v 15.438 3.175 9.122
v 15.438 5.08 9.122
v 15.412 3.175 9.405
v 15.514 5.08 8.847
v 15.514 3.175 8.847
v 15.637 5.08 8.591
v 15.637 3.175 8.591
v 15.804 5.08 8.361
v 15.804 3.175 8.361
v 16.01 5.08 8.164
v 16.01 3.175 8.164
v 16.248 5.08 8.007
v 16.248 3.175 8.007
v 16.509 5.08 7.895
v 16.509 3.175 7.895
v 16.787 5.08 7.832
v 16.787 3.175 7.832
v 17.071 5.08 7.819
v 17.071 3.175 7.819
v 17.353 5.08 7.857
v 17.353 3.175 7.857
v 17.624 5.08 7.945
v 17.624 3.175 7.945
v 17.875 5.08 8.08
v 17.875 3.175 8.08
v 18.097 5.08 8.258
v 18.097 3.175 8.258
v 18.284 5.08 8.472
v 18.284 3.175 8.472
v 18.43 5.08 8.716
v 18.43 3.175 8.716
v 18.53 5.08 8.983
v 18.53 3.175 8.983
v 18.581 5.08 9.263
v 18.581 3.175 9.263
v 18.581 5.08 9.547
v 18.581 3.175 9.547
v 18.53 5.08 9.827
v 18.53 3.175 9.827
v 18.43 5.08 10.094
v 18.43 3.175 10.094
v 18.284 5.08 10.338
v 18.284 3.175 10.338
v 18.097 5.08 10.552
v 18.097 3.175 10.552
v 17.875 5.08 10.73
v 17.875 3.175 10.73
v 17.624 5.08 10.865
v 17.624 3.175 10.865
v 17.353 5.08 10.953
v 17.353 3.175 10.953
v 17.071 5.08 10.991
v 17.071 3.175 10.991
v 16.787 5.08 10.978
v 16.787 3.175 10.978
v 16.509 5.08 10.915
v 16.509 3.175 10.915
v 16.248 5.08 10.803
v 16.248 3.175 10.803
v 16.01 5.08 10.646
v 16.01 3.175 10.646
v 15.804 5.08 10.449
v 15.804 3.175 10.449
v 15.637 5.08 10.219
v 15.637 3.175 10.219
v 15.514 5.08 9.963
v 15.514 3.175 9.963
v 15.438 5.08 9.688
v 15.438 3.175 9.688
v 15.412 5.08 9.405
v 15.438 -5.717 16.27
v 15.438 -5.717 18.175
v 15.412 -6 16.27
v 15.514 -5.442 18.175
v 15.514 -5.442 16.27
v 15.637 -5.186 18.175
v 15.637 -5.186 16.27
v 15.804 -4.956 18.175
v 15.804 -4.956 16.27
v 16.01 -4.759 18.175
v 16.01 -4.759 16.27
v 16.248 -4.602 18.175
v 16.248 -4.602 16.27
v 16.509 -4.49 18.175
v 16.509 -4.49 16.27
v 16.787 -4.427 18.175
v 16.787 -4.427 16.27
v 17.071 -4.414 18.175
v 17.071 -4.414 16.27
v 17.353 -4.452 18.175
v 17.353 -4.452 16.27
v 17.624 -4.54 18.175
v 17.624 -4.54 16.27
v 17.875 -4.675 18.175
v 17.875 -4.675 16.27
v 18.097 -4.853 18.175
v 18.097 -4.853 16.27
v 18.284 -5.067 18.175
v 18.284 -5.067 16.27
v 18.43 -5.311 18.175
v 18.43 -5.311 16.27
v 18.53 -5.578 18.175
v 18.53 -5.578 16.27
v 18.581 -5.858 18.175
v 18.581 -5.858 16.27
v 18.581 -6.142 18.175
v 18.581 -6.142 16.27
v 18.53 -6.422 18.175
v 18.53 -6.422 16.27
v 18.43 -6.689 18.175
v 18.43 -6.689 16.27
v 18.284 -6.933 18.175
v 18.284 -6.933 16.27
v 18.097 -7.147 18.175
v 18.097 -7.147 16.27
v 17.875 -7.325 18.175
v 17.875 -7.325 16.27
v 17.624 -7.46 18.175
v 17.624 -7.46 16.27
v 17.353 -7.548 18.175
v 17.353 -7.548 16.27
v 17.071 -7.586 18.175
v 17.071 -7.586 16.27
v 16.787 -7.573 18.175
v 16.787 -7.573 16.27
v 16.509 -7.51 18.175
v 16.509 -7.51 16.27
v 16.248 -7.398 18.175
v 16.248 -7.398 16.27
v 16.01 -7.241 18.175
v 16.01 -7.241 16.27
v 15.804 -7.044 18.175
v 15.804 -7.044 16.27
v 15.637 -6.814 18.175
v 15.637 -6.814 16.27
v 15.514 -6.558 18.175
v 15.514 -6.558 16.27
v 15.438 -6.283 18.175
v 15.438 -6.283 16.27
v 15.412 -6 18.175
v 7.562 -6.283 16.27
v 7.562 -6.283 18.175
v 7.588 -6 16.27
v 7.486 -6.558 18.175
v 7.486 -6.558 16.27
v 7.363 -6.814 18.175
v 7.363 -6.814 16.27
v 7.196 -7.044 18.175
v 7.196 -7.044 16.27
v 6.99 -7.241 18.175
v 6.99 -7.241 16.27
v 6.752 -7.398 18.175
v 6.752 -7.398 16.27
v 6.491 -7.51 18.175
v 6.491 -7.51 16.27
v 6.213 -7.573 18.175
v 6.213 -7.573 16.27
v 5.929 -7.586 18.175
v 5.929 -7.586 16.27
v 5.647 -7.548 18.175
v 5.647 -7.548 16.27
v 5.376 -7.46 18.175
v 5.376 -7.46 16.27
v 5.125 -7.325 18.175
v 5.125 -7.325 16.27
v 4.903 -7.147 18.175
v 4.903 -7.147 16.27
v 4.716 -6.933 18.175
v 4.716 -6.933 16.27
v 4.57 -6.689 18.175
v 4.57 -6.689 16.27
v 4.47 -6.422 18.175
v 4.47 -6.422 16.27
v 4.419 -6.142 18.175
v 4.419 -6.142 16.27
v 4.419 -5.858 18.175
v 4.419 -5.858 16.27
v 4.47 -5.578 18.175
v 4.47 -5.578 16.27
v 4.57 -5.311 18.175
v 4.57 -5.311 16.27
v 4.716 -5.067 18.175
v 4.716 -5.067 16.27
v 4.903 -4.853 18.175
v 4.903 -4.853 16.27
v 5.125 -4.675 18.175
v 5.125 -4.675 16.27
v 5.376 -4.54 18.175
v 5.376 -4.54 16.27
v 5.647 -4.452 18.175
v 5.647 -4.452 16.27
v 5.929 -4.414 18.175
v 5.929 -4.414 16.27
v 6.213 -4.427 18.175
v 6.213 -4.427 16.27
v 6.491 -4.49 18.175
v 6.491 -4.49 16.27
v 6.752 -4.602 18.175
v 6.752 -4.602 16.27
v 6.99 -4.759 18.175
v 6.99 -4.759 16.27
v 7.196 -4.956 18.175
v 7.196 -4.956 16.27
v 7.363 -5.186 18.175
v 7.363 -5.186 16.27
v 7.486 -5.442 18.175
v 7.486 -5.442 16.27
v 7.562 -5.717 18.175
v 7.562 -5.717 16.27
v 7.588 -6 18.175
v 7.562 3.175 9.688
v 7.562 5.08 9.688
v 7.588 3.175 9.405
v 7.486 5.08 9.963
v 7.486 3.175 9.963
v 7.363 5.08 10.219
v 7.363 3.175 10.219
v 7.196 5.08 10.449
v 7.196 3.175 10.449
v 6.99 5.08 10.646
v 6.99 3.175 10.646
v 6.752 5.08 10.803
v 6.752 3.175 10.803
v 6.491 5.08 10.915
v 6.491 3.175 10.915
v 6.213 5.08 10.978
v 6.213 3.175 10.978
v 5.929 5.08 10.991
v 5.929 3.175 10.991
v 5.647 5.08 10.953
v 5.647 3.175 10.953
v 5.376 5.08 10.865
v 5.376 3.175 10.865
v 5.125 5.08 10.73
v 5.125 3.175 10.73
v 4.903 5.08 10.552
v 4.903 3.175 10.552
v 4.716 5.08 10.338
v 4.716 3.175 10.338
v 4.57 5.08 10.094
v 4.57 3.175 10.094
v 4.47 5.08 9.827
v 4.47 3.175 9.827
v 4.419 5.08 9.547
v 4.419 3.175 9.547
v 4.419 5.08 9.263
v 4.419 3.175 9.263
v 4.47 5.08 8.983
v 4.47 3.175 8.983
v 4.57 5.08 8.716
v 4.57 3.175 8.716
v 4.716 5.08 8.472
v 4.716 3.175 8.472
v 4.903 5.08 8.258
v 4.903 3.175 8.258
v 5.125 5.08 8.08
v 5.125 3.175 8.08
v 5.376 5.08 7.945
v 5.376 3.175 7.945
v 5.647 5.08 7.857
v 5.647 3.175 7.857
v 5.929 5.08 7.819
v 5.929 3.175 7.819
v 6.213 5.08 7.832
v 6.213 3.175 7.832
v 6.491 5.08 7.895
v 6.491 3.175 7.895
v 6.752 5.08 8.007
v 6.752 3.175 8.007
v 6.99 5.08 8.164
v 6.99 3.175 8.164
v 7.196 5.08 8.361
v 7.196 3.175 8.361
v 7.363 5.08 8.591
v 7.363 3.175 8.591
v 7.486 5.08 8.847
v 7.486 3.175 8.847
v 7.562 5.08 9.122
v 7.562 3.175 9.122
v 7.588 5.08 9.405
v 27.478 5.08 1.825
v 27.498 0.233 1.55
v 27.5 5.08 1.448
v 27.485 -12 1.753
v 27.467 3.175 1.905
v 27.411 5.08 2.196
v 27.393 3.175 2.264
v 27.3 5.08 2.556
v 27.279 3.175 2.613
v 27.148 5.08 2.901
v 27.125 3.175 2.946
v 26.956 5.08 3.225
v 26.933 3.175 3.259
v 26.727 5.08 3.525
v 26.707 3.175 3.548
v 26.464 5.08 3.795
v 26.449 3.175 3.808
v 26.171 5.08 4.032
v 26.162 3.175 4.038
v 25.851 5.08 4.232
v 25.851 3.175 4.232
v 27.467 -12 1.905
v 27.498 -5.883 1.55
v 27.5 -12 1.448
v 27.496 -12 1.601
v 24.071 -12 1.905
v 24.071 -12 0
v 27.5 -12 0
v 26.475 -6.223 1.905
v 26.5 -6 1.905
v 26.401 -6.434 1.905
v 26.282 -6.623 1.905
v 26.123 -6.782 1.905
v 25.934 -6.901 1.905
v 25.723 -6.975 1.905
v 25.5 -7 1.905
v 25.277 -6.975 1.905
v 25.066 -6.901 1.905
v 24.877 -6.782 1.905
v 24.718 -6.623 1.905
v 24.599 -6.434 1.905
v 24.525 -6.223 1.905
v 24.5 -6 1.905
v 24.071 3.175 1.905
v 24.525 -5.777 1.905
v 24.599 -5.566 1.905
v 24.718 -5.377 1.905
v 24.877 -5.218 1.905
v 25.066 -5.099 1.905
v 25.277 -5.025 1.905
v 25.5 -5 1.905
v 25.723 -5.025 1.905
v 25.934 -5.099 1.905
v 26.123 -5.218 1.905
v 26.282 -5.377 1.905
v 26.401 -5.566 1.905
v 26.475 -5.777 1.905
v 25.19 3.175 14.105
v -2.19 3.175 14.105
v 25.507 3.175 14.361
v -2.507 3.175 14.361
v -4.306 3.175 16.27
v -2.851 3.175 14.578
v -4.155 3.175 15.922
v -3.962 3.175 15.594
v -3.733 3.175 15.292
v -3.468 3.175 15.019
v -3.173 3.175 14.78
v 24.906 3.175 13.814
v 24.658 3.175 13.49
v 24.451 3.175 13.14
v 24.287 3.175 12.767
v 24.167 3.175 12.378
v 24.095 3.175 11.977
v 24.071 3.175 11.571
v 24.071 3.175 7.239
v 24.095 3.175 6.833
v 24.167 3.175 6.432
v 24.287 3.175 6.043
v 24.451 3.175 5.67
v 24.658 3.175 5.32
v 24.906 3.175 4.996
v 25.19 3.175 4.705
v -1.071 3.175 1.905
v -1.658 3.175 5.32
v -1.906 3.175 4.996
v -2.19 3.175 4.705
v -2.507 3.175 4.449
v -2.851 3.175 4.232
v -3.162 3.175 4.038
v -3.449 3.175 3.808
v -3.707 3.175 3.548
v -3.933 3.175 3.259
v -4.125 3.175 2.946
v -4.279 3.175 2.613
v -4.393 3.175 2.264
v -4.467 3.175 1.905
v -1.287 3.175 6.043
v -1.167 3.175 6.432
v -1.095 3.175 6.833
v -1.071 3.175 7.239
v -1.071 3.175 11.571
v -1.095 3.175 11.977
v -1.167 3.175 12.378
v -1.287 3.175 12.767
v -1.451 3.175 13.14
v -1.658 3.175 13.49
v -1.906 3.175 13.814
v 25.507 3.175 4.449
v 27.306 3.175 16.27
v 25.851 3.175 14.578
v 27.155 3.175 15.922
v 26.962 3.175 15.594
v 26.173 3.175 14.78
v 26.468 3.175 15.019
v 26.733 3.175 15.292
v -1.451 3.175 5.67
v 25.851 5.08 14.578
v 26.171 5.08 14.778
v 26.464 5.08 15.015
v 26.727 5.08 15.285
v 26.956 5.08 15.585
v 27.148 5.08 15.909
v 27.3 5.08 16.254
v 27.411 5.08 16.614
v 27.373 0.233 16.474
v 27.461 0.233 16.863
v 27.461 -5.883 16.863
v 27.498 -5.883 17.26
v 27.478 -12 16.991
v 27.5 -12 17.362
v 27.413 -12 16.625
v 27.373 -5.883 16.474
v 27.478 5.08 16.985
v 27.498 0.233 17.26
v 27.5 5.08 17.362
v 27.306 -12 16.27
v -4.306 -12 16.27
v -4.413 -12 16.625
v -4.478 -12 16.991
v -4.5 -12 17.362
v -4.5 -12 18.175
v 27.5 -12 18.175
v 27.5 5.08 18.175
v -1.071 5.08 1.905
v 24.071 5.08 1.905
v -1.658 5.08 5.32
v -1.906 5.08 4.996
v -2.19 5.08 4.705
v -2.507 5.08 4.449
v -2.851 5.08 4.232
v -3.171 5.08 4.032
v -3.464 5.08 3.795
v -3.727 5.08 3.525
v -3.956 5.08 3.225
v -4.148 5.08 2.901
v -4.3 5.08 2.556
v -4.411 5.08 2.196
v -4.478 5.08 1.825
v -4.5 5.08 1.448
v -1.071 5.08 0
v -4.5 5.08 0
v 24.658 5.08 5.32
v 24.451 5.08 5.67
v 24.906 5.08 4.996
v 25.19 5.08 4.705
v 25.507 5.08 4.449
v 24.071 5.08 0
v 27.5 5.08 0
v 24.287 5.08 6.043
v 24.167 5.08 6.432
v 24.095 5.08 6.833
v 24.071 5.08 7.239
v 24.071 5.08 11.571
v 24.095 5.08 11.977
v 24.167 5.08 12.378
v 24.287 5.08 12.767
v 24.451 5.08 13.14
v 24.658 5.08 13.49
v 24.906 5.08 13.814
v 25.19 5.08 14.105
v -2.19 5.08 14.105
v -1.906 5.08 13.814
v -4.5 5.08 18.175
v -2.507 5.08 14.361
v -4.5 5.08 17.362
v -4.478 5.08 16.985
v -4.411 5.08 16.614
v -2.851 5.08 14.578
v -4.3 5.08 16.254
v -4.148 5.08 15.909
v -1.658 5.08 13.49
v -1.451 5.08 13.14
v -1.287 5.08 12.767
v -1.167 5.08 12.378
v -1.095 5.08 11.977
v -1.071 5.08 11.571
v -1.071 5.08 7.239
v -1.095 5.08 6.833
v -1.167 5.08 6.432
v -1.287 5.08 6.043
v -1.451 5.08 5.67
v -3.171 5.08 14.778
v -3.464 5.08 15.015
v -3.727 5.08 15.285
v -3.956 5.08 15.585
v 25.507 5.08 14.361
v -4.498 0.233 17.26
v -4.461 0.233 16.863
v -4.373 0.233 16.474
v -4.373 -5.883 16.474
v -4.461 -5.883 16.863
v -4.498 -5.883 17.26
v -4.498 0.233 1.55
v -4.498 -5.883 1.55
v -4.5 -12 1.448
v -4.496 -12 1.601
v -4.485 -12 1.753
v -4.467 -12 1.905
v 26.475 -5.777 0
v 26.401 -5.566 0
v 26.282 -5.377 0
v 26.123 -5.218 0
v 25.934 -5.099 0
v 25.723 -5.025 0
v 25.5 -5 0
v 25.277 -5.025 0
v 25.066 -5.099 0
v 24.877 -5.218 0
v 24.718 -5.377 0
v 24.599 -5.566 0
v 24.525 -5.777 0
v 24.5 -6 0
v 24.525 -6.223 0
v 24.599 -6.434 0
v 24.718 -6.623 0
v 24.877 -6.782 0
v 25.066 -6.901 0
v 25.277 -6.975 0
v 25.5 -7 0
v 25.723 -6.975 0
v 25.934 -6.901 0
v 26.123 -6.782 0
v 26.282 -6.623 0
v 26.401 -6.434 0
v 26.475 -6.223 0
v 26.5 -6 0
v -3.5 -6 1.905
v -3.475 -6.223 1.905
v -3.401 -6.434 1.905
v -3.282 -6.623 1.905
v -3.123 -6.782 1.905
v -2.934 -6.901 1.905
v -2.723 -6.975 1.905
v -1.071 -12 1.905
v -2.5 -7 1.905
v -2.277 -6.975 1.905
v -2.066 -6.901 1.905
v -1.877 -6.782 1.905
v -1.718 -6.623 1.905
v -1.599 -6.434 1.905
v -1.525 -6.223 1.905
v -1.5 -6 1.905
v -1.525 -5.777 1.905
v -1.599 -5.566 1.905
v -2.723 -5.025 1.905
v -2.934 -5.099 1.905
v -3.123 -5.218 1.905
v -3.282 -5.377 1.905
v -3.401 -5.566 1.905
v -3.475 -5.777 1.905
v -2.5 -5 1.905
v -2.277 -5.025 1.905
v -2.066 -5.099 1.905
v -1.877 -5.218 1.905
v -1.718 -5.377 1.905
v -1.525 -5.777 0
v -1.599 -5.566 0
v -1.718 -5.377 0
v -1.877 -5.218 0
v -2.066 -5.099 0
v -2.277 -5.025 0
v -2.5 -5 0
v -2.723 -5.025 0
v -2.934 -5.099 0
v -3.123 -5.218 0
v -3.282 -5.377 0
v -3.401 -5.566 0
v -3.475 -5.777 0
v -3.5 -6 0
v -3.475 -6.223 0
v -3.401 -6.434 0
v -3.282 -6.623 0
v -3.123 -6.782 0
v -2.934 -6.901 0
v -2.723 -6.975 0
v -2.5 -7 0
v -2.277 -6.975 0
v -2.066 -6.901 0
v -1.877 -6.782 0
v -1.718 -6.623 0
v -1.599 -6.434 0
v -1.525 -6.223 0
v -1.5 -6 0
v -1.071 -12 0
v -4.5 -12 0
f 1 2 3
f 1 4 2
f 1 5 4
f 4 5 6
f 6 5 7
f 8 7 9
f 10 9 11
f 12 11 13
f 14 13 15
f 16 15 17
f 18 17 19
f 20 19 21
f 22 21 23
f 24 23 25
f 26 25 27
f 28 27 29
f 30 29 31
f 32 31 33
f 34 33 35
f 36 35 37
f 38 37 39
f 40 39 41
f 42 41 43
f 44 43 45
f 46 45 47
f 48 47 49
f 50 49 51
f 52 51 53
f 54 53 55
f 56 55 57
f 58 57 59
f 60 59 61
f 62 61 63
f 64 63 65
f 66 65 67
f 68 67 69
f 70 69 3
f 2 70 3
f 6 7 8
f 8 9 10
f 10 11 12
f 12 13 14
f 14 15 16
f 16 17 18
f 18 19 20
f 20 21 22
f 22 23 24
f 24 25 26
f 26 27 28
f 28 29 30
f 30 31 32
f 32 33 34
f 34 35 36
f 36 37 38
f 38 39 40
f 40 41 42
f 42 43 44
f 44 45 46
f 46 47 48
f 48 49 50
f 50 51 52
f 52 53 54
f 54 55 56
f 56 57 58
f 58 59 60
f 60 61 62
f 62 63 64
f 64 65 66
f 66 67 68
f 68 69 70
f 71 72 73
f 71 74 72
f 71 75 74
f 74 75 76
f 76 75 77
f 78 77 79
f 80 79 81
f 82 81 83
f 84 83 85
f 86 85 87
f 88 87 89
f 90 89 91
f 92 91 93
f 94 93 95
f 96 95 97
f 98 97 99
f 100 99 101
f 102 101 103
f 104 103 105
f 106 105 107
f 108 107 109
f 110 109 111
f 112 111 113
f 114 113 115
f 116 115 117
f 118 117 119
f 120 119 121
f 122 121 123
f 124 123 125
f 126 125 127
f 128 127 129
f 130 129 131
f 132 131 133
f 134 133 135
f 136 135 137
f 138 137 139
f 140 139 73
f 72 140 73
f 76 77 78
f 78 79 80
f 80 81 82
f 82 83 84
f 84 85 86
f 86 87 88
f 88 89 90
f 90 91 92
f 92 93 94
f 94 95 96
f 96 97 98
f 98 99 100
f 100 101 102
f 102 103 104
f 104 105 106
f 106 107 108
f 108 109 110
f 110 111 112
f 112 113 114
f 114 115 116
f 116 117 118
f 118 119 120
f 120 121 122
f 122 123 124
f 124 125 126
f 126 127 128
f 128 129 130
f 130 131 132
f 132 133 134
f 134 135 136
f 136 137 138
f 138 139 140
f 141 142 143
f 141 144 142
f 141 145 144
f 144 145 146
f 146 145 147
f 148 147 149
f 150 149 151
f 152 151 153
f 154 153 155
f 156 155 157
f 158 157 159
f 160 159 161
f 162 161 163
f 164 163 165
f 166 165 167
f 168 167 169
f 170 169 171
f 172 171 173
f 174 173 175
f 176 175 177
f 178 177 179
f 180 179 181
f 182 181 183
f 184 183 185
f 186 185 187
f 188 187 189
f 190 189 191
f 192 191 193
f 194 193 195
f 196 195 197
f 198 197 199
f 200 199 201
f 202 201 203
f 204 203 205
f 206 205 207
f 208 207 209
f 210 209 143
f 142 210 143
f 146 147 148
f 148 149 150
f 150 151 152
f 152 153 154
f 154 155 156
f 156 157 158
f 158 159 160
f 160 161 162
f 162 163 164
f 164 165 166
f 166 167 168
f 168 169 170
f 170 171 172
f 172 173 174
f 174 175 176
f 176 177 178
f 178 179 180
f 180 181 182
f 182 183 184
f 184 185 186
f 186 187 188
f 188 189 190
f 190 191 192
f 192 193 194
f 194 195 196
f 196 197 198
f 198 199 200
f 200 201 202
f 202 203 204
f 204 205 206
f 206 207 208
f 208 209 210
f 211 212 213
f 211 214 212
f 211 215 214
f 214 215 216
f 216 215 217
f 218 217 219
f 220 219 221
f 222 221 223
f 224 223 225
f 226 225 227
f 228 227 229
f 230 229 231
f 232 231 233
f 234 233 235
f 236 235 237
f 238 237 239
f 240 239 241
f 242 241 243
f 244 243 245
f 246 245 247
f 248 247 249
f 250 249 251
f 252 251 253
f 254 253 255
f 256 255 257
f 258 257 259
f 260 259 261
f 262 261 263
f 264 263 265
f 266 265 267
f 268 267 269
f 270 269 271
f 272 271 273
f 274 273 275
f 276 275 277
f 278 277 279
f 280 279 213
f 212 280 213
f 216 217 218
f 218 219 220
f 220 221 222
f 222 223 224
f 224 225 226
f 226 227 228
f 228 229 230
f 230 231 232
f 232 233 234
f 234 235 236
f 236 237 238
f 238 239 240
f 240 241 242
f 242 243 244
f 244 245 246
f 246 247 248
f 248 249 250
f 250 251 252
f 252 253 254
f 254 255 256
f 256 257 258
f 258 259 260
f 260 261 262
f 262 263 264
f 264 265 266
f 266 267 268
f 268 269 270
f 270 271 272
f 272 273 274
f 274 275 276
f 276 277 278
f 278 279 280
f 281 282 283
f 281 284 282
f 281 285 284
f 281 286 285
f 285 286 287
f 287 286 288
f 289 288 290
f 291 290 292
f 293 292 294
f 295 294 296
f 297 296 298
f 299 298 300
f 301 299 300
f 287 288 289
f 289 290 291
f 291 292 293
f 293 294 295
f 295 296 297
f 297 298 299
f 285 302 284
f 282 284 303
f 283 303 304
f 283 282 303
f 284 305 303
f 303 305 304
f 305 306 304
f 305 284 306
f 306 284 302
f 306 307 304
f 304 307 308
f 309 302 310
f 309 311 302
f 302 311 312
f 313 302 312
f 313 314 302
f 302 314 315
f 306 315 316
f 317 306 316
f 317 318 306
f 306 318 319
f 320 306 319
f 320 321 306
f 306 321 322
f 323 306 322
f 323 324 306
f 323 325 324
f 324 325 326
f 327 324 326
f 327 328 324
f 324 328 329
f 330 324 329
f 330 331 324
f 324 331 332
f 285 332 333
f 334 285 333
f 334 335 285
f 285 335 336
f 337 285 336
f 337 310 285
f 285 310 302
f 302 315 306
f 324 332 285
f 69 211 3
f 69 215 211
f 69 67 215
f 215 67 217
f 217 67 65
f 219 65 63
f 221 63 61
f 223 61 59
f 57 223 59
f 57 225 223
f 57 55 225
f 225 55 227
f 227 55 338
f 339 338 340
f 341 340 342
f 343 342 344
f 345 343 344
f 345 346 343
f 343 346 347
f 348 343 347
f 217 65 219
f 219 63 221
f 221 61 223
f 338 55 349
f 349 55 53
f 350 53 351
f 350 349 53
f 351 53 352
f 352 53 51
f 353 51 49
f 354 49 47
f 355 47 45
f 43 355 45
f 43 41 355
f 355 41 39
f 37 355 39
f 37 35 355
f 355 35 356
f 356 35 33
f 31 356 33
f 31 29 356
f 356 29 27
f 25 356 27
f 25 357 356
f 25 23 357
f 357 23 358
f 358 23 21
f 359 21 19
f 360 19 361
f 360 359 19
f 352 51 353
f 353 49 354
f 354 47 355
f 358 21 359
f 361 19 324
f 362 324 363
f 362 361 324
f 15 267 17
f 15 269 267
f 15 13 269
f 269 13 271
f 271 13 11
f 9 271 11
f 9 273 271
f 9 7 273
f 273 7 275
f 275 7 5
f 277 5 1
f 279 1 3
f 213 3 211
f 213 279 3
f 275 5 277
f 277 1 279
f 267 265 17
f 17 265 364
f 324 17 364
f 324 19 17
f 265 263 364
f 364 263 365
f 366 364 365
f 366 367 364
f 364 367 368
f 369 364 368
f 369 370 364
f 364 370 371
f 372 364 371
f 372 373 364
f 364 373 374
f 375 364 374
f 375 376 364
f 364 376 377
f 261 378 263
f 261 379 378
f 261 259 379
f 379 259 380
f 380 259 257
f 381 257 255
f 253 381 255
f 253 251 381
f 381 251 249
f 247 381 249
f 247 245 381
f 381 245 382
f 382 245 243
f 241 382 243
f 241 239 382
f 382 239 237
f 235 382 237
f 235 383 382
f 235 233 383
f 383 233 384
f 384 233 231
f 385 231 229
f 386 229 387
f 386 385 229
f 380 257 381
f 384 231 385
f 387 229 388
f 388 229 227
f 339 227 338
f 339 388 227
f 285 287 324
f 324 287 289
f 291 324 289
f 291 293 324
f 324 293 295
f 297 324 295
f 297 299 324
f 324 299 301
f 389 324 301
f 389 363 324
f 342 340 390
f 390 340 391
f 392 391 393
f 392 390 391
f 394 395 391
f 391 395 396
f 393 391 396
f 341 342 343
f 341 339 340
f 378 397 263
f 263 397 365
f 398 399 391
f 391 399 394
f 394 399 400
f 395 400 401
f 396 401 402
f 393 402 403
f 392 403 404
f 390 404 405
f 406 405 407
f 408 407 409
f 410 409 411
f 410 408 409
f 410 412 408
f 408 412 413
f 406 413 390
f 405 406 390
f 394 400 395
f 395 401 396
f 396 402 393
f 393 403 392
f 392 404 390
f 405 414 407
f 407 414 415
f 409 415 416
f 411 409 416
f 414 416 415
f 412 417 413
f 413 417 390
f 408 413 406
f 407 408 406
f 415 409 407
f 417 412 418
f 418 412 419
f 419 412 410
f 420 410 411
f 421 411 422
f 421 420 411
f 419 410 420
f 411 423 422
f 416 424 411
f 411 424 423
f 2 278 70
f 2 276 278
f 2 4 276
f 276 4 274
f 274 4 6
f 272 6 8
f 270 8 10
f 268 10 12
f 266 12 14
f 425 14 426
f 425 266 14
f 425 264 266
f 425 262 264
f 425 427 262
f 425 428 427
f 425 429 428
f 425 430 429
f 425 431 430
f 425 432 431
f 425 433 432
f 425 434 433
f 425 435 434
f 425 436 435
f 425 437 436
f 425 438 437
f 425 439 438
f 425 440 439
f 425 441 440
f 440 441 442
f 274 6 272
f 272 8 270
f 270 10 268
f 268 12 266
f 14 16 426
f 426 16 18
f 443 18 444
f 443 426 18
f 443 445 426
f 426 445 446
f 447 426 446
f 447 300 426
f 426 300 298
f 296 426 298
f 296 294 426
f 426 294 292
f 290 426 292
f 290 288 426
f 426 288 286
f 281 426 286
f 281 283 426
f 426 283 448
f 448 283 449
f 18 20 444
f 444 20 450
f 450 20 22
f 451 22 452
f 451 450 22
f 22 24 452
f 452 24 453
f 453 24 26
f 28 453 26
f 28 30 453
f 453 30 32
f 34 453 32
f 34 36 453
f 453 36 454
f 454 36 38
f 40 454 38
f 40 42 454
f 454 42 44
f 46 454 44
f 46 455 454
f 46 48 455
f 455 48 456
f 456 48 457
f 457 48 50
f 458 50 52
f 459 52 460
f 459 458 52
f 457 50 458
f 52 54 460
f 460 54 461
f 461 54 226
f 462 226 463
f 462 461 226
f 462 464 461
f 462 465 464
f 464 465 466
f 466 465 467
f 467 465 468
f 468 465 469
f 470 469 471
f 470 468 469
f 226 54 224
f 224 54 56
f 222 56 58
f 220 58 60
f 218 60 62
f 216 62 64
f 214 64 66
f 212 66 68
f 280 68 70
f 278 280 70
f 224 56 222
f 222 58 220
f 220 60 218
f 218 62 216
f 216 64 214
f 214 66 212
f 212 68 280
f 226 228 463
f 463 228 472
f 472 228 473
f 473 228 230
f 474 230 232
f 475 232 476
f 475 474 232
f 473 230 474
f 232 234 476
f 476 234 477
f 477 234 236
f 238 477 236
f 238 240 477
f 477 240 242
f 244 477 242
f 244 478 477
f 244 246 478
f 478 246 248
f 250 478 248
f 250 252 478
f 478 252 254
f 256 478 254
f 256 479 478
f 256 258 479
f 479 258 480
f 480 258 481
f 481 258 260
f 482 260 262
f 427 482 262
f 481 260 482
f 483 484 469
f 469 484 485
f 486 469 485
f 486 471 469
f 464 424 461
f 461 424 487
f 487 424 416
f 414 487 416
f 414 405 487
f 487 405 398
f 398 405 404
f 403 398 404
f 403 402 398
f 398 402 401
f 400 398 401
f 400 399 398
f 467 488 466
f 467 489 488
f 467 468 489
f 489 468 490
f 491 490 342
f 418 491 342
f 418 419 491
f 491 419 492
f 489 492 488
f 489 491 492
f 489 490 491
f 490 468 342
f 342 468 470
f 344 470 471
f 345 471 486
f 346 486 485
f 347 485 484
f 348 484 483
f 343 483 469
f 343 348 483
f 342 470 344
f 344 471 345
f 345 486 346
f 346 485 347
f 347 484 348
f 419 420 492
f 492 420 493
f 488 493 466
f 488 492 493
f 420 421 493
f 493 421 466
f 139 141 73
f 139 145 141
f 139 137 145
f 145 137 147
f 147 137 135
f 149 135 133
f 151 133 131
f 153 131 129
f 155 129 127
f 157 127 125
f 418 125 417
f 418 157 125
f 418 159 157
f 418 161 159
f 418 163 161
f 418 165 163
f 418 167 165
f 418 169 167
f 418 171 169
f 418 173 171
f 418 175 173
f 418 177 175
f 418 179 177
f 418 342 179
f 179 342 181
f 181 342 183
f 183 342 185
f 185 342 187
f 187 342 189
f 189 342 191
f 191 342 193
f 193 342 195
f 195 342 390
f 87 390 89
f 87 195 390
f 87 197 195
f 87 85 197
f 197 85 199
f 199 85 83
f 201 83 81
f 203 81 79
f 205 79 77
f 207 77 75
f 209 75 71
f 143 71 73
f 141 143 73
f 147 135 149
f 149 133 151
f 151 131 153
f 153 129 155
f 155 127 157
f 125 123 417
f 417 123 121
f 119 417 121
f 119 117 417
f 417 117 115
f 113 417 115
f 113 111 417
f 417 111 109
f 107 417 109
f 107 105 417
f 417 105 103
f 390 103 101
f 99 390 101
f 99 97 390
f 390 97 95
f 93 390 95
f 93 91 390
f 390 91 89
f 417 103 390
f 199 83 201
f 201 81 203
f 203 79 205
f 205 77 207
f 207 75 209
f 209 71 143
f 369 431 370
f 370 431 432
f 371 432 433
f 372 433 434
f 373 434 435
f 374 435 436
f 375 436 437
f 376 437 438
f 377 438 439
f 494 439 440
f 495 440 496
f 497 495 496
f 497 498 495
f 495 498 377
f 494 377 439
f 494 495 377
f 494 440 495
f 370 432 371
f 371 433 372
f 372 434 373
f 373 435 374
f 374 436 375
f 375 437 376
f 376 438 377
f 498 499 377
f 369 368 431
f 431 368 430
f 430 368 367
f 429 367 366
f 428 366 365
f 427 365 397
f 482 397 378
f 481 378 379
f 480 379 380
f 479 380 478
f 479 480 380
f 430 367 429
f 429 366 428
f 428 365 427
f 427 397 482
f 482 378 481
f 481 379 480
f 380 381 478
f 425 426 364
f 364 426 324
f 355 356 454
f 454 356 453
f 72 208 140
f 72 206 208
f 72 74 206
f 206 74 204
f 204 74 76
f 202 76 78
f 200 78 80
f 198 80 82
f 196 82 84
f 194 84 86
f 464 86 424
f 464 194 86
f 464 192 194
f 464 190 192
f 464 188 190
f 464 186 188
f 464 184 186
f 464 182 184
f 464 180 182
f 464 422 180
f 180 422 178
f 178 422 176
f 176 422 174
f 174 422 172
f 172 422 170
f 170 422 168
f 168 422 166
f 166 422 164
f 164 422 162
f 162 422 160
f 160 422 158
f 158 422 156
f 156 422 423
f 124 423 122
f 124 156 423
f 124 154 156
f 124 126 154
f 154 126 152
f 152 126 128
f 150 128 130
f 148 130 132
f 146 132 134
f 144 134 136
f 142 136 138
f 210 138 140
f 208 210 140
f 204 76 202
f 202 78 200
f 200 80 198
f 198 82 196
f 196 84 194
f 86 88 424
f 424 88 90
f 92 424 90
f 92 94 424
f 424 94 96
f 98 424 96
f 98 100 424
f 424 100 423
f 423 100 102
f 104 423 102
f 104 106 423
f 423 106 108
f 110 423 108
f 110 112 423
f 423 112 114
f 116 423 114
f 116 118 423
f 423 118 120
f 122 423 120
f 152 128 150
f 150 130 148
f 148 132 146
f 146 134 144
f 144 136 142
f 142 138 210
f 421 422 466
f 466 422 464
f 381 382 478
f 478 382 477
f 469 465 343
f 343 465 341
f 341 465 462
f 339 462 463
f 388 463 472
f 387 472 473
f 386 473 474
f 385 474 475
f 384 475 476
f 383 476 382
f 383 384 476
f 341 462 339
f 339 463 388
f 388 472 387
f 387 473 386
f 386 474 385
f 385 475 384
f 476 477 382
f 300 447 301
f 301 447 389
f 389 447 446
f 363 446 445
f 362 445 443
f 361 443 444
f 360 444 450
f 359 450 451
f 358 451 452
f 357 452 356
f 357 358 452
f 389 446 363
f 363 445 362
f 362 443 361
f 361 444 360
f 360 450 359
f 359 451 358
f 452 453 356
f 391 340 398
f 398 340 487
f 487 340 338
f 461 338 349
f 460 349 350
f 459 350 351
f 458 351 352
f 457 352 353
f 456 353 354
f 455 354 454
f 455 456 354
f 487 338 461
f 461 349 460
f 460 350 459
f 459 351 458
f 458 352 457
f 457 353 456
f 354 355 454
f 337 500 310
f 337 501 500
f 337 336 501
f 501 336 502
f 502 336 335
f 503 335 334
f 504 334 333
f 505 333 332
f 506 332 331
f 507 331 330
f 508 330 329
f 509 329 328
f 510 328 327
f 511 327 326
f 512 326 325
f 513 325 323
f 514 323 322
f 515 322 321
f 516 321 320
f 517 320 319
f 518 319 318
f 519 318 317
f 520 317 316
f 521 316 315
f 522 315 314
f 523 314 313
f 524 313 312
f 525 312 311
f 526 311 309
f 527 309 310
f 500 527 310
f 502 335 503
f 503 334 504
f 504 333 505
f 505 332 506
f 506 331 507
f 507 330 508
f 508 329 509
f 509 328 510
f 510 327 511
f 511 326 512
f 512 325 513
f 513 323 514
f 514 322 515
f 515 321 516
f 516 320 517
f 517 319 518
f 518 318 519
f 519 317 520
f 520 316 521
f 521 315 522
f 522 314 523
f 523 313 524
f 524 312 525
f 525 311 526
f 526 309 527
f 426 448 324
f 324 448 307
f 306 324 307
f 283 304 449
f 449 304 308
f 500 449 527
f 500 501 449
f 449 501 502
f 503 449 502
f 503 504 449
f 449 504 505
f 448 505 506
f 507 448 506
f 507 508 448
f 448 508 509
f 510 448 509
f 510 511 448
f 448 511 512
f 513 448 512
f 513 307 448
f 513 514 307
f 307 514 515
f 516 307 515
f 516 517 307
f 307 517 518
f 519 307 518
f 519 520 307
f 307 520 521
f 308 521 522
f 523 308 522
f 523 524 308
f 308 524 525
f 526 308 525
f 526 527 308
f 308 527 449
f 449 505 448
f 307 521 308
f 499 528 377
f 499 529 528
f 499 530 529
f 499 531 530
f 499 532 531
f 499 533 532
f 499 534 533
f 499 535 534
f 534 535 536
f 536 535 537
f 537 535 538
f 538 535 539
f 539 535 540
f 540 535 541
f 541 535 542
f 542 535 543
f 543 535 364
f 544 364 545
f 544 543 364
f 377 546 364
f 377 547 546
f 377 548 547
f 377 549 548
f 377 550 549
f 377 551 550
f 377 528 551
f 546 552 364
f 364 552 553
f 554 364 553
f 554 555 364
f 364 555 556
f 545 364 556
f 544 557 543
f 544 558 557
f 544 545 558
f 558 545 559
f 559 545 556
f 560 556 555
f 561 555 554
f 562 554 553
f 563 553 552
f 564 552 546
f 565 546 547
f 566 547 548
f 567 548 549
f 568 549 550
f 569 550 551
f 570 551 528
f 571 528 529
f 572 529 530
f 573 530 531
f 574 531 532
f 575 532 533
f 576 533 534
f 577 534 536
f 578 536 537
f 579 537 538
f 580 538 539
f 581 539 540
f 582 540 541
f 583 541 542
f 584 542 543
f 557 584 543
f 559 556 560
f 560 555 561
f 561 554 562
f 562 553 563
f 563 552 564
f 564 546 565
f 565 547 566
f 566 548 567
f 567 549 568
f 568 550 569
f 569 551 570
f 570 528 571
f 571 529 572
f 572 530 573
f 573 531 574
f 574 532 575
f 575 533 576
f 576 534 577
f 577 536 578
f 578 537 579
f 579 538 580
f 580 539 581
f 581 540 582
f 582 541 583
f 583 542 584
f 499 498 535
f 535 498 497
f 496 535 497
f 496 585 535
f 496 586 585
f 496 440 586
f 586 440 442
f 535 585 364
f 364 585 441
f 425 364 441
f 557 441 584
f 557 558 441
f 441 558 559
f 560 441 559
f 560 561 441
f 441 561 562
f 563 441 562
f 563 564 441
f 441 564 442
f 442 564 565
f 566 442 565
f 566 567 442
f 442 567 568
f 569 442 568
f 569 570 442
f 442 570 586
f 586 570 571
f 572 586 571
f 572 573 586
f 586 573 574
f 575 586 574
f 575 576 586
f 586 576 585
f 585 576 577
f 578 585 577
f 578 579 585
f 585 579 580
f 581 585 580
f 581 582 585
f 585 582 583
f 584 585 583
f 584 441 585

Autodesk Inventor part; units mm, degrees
ref_plane "YZ Plane" through (0, 0, 0) normal (1, 0, 0) x (0, 1, 0)
sketch "Sketch1" plane through (0, 0, 0) normal (0, 0, 1) x (1, 0, 0)
  line L0 (-4.3, 0) -> (27.3, 0) projected
  line L1 (27.5, -0.2) -> (27.5, -5.5) projected
  line L2 (-4.3, -12) -> (27.3, -12) projected
  line L3 (27.5, -6.5) -> (27.5, -11.8) projected
  line L4 (-4.5, -0.2) -> (-4.5, -5.5) projected
  line L5 (-4.5, -6.5) -> (-4.5, -11.8) projected
  line L6 (-4.5, 0) -> (-1.071, 0)
  line L7 (-1.071, 0) -> (-1.071, -12)
  line L8 (-1.071, -12) -> (-4.5, -12)
  line L9 (-4.5, -12) -> (-4.5, 0)
  arc A0 (-3.366, -6.5) -> (-3.366, -5.5) centre (-2.5, -6) ccw projected
  circle A1 centre (-2.5, -6) radius 1
  line L10 (27.5, -12) -> (24.071, -12)
  line L11 (24.071, -12) -> (24.071, 0)
  line L12 (24.071, 0) -> (27.5, 0)
  line L13 (27.5, 0) -> (27.5, -12)
  arc A2 (26.366, -5.5) -> (26.366, -6.5) centre (25.5, -6) ccw projected
  circle A3 centre (25.5, -6) radius 1
  line L14 (-1.071, 0) -> (-4.5, 0)
  line L15 (-4.5, 0) -> (-4.5, 1.905)
  line L16 (-4.5, 1.905) -> (-1.071, 1.905)
  line L17 (-1.071, 1.905) -> (-1.071, 0)
  line L18 (11.5, 0) -> (11.5, -12) construction
  line L19 (27.5, 0) -> (24.071, 0)
  line L20 (24.071, 0) -> (27.5, 0)
  line L21 (27.5, 0) -> (27.5, 1.905)
  line L22 (27.5, 1.905) -> (24.071, 1.905)
  line L23 (24.071, 1.905) -> (24.071, 0)
  line L24 (-4.5, 1.905) -> (-1.071, 1.905)
  line L25 (-1.071, 1.905) -> (-1.071, 5.08)
  line L26 (-1.071, 5.08) -> (-4.5, 5.08)
  line L27 (-4.5, 5.08) -> (-4.5, 1.905)
  line L28 (24.071, 1.905) -> (27.5, 1.905)
  line L29 (27.5, 1.905) -> (27.5, 5.08)
  line L30 (27.5, 5.08) -> (24.071, 5.08)
  line L31 (24.071, 5.08) -> (24.071, 1.905)
  point P0 (0, 0)
  dimension "d0" = 3.429
  dimension "d1" = 3.429
  dimension "d2" = 1.905
  dimension "d8" = 3.175
  dimension "d9" = 3.175
extrude "Extrusion1" add sketch "Sketch1" along normal blind 1.905 contours L6 L15 L16 L17 L0 | L0 L7 L2 L8 L9 L5 L4 L6 | L23 L22 L21 L12 L0 | L0 L12 L13 L1 L3 L10 L2 L11 | L16 L27 L26 L25 | L31 L30 L29 L22
ref_plane "Work Plane1" through (0, 3.175, 15) normal (0, 1, 0) x (1, 0, 0)
sketch "Sketch2" plane through (0, 3.175, 15) normal (0, 1, 0) x (1, 0, 0)
  line L0 (-1.071, 15) -> (-4.5, 15) projected
  line L1 (-4.5, 15) -> (-4.5, 13.095) projected
  line L2 (-1.071, 13.095) -> (-4.5, 13.095) projected
  line L3 (-1.071, 15) -> (-1.071, 13.095) projected
  line L4 (27.5, 15) -> (24.071, 15) projected
  line L5 (24.071, 15) -> (24.071, 13.095) projected
  line L6 (27.5, 13.095) -> (24.071, 13.095) projected
  line L7 (27.5, 15) -> (27.5, 13.095) projected
  line L8 (22.8, 0) -> (0.2, 0) projected
  line L9 (-4.5, 13.095) -> (27.5, 13.095)
  line L10 (27.5, -3.175) -> (-4.5, -3.175)
  line L11 (-4.5, 11.19) -> (-1.071, 11.19)
  line L12 (-1.071, 11.19) -> (-1.071, 0)
  line L13 (-1.071, 0) -> (-4.5, 0)
  line L14 (27.5, 0) -> (24.071, 0)
  line L15 (24.071, 0) -> (24.071, 11.19)
  line L16 (24.071, 11.19) -> (27.5, 11.19)
  line L17 (23, 15) -> (23, 5) projected
  line L18 (0, 5) -> (0, 15) projected
  line L19 (-1.071, 15) -> (-1.071, 13.095) projected
  line L20 (24.071, 15) -> (24.071, 13.095) projected
  arc A0 (-1.071, 7.761) -> (-4.5, 11.19) centre (-4.5, 7.761) ccw
  arc A1 (-4.5, 0) -> (-1.071, 3.429) centre (-4.5, 3.429) ccw
  arc A2 (27.5, 11.19) -> (24.071, 7.761) centre (27.5, 7.761) ccw
  arc A3 (24.071, 3.429) -> (27.5, 0) centre (27.5, 3.429) ccw
  line L21 (-4.5, -3.175) -> (-4.5, 0)
  line L22 (-4.5, 11.19) -> (-4.5, 13.095)
  line L23 (27.5, 13.095) -> (27.5, 11.19)
  line L24 (27.5, 0) -> (27.5, -3.175)
  dimension "d5" = 3.175
  dimension "d13" = 1.905
extrude "Extrusion2" add sketch "Sketch2" along normal blind 1.905 contours L9 L6 L23 L16 L15 L14 L24 L10 L21 L13 L12 L11 L22 L2 | L11 L12 A0 | L12 L13 A1 | A2 L15 L16 | A3 L14 L15
sketch "Sketch6" plane through (0, 3.175, 15) normal (0, -1, 0) x (1, 0, 0)
  line L0 (0.2, 0) -> (22.8, 0) projected
  line L1 (-4.5, -15) -> (-4.5, 3.175) projected
  line L2 (27.5, 3.175) -> (-4.5, 3.175)
  line L3 (-4.5, 3.175) -> (-4.5, 1.27)
  line L4 (-4.5, 1.27) -> (27.5, 1.27)
  line L5 (27.5, 1.27) -> (27.5, 3.175)
  line L6 (27.5, 3.175) -> (27.5, -13.095) projected
  line L7 (-4.5, 3.175) -> (27.5, 3.175) projected
  point P0 (0, -15)
  dimension "d10" = 1.905
extrude "Extrusion3" add sketch "Sketch6" along normal up to surface (15.175 mm away)
fillet "Fillet1" radius 3.175 4 edges at (-4.5, 4.1275, 3.81) (-4.5, 4.1275, 15) (27.5, 4.1275, 15) (27.5, 4.1275, 3.81)
sketch "Sketch7" plane through (-4.5, 5.08, 18.175) normal (0, 0, 1) x (1, 0, 0)
  line L0 (32, -17.08) -> (32, 0) projected
  line L1 (0, 0) -> (32, 0) projected
  line L2 (0, -17.08) -> (0, 0) projected
  line L3 (0, -17.08) -> (32, -17.08) projected
  line L4 (31.8064, -17.08) -> (0.1936, -17.08) construction
  line L5 (32, -17.08) -> (32, 0) construction
  circle A0 centre (10.5, -11.08) radius 1.5875
  circle A1 centre (10.5, -11.08) radius 3.75
  point P0 (4.5, -5.08)
  dimension "d15" = 3.175
sketch "Sketch8" plane through (24.071, 5.08, 0) normal (0, 1, 0) x (1, 0, 0)
  arc A0 (1.7804, -4.2323) -> (3.429, -1.4483) centre (0.254, -1.4483) ccw projected
  line L0 (3.429, 0) -> (3.429, -1.4483) projected
  line L1 (3.429, 0) -> (0, 0) projected
  line L2 (0, 0) -> (0, -1.905) projected
  line L3 (0, -1.905) -> (-25.142, -1.905) projected
  line L4 (-25.142, 0) -> (-25.142, -1.905) projected
  line L5 (-25.142, 0) -> (-28.571, 0) projected
  line L6 (-28.571, 0) -> (-28.571, -1.4483) projected
  arc A1 (-28.571, -1.4483) -> (-26.9224, -4.2323) centre (-25.396, -1.4483) ccw projected
  arc A2 (-25.142, -7.239) -> (-26.9224, -4.2323) centre (-28.571, -7.239) ccw projected
  line L7 (-25.142, -7.239) -> (-25.142, -11.571) projected
  arc A3 (-26.9224, -14.5777) -> (-25.142, -11.571) centre (-28.571, -11.571) ccw projected
  arc A4 (-26.9224, -14.5777) -> (-28.571, -17.3617) centre (-25.396, -17.3617) ccw projected
  line L8 (-28.571, -17.3617) -> (-28.571, -18.175) projected
  line L9 (-28.571, -18.175) -> (3.429, -18.175) projected
  line L10 (3.429, -18.175) -> (3.429, -17.3617) projected
  arc A5 (3.429, -17.3617) -> (1.7804, -14.5777) centre (0.254, -17.3617) ccw projected
  arc A6 (0, -11.571) -> (1.7804, -14.5777) centre (3.429, -11.571) ccw projected
  line L11 (0, -11.571) -> (0, -7.239) projected
  arc A7 (1.7804, -4.2323) -> (0, -7.239) centre (3.429, -7.239) ccw projected
  line L12 (-25.142, -7.239) -> (-25.142, -11.571) construction
  circle A8 centre (-18.071, -9.405) radius 1.5875
  line L13 (-21.821, 16.1332) -> (-14.321, 16.1332)
  line L14 (-18.071, 16.1332) -> (-18.071, -9.3987) construction
  line L15 (-25.142, -9.405) -> (0, -9.405) construction
  point P0 (-24.071, 0)
  dimension "d16" = 3.175
extrude "Extrusion4" cut sketch "Sketch8" against normal up to next contours A8
extrude "Extrusion5" cut sketch "Sketch7" against normal up to next contours A0
ref_plane "Work Plane3" through (11.5, -12, 0) normal (1, 0, 0) x (0, 0, -1)
mirror "Mirror1" about plane through (11.5, -12, 0) normal (1, 0, 0) of "Extrusion5"
mirror "Mirror2" about plane through (11.5, -12, 0) normal (1, 0, 0) of "Extrusion4"
properties part number "Servo_vice"
